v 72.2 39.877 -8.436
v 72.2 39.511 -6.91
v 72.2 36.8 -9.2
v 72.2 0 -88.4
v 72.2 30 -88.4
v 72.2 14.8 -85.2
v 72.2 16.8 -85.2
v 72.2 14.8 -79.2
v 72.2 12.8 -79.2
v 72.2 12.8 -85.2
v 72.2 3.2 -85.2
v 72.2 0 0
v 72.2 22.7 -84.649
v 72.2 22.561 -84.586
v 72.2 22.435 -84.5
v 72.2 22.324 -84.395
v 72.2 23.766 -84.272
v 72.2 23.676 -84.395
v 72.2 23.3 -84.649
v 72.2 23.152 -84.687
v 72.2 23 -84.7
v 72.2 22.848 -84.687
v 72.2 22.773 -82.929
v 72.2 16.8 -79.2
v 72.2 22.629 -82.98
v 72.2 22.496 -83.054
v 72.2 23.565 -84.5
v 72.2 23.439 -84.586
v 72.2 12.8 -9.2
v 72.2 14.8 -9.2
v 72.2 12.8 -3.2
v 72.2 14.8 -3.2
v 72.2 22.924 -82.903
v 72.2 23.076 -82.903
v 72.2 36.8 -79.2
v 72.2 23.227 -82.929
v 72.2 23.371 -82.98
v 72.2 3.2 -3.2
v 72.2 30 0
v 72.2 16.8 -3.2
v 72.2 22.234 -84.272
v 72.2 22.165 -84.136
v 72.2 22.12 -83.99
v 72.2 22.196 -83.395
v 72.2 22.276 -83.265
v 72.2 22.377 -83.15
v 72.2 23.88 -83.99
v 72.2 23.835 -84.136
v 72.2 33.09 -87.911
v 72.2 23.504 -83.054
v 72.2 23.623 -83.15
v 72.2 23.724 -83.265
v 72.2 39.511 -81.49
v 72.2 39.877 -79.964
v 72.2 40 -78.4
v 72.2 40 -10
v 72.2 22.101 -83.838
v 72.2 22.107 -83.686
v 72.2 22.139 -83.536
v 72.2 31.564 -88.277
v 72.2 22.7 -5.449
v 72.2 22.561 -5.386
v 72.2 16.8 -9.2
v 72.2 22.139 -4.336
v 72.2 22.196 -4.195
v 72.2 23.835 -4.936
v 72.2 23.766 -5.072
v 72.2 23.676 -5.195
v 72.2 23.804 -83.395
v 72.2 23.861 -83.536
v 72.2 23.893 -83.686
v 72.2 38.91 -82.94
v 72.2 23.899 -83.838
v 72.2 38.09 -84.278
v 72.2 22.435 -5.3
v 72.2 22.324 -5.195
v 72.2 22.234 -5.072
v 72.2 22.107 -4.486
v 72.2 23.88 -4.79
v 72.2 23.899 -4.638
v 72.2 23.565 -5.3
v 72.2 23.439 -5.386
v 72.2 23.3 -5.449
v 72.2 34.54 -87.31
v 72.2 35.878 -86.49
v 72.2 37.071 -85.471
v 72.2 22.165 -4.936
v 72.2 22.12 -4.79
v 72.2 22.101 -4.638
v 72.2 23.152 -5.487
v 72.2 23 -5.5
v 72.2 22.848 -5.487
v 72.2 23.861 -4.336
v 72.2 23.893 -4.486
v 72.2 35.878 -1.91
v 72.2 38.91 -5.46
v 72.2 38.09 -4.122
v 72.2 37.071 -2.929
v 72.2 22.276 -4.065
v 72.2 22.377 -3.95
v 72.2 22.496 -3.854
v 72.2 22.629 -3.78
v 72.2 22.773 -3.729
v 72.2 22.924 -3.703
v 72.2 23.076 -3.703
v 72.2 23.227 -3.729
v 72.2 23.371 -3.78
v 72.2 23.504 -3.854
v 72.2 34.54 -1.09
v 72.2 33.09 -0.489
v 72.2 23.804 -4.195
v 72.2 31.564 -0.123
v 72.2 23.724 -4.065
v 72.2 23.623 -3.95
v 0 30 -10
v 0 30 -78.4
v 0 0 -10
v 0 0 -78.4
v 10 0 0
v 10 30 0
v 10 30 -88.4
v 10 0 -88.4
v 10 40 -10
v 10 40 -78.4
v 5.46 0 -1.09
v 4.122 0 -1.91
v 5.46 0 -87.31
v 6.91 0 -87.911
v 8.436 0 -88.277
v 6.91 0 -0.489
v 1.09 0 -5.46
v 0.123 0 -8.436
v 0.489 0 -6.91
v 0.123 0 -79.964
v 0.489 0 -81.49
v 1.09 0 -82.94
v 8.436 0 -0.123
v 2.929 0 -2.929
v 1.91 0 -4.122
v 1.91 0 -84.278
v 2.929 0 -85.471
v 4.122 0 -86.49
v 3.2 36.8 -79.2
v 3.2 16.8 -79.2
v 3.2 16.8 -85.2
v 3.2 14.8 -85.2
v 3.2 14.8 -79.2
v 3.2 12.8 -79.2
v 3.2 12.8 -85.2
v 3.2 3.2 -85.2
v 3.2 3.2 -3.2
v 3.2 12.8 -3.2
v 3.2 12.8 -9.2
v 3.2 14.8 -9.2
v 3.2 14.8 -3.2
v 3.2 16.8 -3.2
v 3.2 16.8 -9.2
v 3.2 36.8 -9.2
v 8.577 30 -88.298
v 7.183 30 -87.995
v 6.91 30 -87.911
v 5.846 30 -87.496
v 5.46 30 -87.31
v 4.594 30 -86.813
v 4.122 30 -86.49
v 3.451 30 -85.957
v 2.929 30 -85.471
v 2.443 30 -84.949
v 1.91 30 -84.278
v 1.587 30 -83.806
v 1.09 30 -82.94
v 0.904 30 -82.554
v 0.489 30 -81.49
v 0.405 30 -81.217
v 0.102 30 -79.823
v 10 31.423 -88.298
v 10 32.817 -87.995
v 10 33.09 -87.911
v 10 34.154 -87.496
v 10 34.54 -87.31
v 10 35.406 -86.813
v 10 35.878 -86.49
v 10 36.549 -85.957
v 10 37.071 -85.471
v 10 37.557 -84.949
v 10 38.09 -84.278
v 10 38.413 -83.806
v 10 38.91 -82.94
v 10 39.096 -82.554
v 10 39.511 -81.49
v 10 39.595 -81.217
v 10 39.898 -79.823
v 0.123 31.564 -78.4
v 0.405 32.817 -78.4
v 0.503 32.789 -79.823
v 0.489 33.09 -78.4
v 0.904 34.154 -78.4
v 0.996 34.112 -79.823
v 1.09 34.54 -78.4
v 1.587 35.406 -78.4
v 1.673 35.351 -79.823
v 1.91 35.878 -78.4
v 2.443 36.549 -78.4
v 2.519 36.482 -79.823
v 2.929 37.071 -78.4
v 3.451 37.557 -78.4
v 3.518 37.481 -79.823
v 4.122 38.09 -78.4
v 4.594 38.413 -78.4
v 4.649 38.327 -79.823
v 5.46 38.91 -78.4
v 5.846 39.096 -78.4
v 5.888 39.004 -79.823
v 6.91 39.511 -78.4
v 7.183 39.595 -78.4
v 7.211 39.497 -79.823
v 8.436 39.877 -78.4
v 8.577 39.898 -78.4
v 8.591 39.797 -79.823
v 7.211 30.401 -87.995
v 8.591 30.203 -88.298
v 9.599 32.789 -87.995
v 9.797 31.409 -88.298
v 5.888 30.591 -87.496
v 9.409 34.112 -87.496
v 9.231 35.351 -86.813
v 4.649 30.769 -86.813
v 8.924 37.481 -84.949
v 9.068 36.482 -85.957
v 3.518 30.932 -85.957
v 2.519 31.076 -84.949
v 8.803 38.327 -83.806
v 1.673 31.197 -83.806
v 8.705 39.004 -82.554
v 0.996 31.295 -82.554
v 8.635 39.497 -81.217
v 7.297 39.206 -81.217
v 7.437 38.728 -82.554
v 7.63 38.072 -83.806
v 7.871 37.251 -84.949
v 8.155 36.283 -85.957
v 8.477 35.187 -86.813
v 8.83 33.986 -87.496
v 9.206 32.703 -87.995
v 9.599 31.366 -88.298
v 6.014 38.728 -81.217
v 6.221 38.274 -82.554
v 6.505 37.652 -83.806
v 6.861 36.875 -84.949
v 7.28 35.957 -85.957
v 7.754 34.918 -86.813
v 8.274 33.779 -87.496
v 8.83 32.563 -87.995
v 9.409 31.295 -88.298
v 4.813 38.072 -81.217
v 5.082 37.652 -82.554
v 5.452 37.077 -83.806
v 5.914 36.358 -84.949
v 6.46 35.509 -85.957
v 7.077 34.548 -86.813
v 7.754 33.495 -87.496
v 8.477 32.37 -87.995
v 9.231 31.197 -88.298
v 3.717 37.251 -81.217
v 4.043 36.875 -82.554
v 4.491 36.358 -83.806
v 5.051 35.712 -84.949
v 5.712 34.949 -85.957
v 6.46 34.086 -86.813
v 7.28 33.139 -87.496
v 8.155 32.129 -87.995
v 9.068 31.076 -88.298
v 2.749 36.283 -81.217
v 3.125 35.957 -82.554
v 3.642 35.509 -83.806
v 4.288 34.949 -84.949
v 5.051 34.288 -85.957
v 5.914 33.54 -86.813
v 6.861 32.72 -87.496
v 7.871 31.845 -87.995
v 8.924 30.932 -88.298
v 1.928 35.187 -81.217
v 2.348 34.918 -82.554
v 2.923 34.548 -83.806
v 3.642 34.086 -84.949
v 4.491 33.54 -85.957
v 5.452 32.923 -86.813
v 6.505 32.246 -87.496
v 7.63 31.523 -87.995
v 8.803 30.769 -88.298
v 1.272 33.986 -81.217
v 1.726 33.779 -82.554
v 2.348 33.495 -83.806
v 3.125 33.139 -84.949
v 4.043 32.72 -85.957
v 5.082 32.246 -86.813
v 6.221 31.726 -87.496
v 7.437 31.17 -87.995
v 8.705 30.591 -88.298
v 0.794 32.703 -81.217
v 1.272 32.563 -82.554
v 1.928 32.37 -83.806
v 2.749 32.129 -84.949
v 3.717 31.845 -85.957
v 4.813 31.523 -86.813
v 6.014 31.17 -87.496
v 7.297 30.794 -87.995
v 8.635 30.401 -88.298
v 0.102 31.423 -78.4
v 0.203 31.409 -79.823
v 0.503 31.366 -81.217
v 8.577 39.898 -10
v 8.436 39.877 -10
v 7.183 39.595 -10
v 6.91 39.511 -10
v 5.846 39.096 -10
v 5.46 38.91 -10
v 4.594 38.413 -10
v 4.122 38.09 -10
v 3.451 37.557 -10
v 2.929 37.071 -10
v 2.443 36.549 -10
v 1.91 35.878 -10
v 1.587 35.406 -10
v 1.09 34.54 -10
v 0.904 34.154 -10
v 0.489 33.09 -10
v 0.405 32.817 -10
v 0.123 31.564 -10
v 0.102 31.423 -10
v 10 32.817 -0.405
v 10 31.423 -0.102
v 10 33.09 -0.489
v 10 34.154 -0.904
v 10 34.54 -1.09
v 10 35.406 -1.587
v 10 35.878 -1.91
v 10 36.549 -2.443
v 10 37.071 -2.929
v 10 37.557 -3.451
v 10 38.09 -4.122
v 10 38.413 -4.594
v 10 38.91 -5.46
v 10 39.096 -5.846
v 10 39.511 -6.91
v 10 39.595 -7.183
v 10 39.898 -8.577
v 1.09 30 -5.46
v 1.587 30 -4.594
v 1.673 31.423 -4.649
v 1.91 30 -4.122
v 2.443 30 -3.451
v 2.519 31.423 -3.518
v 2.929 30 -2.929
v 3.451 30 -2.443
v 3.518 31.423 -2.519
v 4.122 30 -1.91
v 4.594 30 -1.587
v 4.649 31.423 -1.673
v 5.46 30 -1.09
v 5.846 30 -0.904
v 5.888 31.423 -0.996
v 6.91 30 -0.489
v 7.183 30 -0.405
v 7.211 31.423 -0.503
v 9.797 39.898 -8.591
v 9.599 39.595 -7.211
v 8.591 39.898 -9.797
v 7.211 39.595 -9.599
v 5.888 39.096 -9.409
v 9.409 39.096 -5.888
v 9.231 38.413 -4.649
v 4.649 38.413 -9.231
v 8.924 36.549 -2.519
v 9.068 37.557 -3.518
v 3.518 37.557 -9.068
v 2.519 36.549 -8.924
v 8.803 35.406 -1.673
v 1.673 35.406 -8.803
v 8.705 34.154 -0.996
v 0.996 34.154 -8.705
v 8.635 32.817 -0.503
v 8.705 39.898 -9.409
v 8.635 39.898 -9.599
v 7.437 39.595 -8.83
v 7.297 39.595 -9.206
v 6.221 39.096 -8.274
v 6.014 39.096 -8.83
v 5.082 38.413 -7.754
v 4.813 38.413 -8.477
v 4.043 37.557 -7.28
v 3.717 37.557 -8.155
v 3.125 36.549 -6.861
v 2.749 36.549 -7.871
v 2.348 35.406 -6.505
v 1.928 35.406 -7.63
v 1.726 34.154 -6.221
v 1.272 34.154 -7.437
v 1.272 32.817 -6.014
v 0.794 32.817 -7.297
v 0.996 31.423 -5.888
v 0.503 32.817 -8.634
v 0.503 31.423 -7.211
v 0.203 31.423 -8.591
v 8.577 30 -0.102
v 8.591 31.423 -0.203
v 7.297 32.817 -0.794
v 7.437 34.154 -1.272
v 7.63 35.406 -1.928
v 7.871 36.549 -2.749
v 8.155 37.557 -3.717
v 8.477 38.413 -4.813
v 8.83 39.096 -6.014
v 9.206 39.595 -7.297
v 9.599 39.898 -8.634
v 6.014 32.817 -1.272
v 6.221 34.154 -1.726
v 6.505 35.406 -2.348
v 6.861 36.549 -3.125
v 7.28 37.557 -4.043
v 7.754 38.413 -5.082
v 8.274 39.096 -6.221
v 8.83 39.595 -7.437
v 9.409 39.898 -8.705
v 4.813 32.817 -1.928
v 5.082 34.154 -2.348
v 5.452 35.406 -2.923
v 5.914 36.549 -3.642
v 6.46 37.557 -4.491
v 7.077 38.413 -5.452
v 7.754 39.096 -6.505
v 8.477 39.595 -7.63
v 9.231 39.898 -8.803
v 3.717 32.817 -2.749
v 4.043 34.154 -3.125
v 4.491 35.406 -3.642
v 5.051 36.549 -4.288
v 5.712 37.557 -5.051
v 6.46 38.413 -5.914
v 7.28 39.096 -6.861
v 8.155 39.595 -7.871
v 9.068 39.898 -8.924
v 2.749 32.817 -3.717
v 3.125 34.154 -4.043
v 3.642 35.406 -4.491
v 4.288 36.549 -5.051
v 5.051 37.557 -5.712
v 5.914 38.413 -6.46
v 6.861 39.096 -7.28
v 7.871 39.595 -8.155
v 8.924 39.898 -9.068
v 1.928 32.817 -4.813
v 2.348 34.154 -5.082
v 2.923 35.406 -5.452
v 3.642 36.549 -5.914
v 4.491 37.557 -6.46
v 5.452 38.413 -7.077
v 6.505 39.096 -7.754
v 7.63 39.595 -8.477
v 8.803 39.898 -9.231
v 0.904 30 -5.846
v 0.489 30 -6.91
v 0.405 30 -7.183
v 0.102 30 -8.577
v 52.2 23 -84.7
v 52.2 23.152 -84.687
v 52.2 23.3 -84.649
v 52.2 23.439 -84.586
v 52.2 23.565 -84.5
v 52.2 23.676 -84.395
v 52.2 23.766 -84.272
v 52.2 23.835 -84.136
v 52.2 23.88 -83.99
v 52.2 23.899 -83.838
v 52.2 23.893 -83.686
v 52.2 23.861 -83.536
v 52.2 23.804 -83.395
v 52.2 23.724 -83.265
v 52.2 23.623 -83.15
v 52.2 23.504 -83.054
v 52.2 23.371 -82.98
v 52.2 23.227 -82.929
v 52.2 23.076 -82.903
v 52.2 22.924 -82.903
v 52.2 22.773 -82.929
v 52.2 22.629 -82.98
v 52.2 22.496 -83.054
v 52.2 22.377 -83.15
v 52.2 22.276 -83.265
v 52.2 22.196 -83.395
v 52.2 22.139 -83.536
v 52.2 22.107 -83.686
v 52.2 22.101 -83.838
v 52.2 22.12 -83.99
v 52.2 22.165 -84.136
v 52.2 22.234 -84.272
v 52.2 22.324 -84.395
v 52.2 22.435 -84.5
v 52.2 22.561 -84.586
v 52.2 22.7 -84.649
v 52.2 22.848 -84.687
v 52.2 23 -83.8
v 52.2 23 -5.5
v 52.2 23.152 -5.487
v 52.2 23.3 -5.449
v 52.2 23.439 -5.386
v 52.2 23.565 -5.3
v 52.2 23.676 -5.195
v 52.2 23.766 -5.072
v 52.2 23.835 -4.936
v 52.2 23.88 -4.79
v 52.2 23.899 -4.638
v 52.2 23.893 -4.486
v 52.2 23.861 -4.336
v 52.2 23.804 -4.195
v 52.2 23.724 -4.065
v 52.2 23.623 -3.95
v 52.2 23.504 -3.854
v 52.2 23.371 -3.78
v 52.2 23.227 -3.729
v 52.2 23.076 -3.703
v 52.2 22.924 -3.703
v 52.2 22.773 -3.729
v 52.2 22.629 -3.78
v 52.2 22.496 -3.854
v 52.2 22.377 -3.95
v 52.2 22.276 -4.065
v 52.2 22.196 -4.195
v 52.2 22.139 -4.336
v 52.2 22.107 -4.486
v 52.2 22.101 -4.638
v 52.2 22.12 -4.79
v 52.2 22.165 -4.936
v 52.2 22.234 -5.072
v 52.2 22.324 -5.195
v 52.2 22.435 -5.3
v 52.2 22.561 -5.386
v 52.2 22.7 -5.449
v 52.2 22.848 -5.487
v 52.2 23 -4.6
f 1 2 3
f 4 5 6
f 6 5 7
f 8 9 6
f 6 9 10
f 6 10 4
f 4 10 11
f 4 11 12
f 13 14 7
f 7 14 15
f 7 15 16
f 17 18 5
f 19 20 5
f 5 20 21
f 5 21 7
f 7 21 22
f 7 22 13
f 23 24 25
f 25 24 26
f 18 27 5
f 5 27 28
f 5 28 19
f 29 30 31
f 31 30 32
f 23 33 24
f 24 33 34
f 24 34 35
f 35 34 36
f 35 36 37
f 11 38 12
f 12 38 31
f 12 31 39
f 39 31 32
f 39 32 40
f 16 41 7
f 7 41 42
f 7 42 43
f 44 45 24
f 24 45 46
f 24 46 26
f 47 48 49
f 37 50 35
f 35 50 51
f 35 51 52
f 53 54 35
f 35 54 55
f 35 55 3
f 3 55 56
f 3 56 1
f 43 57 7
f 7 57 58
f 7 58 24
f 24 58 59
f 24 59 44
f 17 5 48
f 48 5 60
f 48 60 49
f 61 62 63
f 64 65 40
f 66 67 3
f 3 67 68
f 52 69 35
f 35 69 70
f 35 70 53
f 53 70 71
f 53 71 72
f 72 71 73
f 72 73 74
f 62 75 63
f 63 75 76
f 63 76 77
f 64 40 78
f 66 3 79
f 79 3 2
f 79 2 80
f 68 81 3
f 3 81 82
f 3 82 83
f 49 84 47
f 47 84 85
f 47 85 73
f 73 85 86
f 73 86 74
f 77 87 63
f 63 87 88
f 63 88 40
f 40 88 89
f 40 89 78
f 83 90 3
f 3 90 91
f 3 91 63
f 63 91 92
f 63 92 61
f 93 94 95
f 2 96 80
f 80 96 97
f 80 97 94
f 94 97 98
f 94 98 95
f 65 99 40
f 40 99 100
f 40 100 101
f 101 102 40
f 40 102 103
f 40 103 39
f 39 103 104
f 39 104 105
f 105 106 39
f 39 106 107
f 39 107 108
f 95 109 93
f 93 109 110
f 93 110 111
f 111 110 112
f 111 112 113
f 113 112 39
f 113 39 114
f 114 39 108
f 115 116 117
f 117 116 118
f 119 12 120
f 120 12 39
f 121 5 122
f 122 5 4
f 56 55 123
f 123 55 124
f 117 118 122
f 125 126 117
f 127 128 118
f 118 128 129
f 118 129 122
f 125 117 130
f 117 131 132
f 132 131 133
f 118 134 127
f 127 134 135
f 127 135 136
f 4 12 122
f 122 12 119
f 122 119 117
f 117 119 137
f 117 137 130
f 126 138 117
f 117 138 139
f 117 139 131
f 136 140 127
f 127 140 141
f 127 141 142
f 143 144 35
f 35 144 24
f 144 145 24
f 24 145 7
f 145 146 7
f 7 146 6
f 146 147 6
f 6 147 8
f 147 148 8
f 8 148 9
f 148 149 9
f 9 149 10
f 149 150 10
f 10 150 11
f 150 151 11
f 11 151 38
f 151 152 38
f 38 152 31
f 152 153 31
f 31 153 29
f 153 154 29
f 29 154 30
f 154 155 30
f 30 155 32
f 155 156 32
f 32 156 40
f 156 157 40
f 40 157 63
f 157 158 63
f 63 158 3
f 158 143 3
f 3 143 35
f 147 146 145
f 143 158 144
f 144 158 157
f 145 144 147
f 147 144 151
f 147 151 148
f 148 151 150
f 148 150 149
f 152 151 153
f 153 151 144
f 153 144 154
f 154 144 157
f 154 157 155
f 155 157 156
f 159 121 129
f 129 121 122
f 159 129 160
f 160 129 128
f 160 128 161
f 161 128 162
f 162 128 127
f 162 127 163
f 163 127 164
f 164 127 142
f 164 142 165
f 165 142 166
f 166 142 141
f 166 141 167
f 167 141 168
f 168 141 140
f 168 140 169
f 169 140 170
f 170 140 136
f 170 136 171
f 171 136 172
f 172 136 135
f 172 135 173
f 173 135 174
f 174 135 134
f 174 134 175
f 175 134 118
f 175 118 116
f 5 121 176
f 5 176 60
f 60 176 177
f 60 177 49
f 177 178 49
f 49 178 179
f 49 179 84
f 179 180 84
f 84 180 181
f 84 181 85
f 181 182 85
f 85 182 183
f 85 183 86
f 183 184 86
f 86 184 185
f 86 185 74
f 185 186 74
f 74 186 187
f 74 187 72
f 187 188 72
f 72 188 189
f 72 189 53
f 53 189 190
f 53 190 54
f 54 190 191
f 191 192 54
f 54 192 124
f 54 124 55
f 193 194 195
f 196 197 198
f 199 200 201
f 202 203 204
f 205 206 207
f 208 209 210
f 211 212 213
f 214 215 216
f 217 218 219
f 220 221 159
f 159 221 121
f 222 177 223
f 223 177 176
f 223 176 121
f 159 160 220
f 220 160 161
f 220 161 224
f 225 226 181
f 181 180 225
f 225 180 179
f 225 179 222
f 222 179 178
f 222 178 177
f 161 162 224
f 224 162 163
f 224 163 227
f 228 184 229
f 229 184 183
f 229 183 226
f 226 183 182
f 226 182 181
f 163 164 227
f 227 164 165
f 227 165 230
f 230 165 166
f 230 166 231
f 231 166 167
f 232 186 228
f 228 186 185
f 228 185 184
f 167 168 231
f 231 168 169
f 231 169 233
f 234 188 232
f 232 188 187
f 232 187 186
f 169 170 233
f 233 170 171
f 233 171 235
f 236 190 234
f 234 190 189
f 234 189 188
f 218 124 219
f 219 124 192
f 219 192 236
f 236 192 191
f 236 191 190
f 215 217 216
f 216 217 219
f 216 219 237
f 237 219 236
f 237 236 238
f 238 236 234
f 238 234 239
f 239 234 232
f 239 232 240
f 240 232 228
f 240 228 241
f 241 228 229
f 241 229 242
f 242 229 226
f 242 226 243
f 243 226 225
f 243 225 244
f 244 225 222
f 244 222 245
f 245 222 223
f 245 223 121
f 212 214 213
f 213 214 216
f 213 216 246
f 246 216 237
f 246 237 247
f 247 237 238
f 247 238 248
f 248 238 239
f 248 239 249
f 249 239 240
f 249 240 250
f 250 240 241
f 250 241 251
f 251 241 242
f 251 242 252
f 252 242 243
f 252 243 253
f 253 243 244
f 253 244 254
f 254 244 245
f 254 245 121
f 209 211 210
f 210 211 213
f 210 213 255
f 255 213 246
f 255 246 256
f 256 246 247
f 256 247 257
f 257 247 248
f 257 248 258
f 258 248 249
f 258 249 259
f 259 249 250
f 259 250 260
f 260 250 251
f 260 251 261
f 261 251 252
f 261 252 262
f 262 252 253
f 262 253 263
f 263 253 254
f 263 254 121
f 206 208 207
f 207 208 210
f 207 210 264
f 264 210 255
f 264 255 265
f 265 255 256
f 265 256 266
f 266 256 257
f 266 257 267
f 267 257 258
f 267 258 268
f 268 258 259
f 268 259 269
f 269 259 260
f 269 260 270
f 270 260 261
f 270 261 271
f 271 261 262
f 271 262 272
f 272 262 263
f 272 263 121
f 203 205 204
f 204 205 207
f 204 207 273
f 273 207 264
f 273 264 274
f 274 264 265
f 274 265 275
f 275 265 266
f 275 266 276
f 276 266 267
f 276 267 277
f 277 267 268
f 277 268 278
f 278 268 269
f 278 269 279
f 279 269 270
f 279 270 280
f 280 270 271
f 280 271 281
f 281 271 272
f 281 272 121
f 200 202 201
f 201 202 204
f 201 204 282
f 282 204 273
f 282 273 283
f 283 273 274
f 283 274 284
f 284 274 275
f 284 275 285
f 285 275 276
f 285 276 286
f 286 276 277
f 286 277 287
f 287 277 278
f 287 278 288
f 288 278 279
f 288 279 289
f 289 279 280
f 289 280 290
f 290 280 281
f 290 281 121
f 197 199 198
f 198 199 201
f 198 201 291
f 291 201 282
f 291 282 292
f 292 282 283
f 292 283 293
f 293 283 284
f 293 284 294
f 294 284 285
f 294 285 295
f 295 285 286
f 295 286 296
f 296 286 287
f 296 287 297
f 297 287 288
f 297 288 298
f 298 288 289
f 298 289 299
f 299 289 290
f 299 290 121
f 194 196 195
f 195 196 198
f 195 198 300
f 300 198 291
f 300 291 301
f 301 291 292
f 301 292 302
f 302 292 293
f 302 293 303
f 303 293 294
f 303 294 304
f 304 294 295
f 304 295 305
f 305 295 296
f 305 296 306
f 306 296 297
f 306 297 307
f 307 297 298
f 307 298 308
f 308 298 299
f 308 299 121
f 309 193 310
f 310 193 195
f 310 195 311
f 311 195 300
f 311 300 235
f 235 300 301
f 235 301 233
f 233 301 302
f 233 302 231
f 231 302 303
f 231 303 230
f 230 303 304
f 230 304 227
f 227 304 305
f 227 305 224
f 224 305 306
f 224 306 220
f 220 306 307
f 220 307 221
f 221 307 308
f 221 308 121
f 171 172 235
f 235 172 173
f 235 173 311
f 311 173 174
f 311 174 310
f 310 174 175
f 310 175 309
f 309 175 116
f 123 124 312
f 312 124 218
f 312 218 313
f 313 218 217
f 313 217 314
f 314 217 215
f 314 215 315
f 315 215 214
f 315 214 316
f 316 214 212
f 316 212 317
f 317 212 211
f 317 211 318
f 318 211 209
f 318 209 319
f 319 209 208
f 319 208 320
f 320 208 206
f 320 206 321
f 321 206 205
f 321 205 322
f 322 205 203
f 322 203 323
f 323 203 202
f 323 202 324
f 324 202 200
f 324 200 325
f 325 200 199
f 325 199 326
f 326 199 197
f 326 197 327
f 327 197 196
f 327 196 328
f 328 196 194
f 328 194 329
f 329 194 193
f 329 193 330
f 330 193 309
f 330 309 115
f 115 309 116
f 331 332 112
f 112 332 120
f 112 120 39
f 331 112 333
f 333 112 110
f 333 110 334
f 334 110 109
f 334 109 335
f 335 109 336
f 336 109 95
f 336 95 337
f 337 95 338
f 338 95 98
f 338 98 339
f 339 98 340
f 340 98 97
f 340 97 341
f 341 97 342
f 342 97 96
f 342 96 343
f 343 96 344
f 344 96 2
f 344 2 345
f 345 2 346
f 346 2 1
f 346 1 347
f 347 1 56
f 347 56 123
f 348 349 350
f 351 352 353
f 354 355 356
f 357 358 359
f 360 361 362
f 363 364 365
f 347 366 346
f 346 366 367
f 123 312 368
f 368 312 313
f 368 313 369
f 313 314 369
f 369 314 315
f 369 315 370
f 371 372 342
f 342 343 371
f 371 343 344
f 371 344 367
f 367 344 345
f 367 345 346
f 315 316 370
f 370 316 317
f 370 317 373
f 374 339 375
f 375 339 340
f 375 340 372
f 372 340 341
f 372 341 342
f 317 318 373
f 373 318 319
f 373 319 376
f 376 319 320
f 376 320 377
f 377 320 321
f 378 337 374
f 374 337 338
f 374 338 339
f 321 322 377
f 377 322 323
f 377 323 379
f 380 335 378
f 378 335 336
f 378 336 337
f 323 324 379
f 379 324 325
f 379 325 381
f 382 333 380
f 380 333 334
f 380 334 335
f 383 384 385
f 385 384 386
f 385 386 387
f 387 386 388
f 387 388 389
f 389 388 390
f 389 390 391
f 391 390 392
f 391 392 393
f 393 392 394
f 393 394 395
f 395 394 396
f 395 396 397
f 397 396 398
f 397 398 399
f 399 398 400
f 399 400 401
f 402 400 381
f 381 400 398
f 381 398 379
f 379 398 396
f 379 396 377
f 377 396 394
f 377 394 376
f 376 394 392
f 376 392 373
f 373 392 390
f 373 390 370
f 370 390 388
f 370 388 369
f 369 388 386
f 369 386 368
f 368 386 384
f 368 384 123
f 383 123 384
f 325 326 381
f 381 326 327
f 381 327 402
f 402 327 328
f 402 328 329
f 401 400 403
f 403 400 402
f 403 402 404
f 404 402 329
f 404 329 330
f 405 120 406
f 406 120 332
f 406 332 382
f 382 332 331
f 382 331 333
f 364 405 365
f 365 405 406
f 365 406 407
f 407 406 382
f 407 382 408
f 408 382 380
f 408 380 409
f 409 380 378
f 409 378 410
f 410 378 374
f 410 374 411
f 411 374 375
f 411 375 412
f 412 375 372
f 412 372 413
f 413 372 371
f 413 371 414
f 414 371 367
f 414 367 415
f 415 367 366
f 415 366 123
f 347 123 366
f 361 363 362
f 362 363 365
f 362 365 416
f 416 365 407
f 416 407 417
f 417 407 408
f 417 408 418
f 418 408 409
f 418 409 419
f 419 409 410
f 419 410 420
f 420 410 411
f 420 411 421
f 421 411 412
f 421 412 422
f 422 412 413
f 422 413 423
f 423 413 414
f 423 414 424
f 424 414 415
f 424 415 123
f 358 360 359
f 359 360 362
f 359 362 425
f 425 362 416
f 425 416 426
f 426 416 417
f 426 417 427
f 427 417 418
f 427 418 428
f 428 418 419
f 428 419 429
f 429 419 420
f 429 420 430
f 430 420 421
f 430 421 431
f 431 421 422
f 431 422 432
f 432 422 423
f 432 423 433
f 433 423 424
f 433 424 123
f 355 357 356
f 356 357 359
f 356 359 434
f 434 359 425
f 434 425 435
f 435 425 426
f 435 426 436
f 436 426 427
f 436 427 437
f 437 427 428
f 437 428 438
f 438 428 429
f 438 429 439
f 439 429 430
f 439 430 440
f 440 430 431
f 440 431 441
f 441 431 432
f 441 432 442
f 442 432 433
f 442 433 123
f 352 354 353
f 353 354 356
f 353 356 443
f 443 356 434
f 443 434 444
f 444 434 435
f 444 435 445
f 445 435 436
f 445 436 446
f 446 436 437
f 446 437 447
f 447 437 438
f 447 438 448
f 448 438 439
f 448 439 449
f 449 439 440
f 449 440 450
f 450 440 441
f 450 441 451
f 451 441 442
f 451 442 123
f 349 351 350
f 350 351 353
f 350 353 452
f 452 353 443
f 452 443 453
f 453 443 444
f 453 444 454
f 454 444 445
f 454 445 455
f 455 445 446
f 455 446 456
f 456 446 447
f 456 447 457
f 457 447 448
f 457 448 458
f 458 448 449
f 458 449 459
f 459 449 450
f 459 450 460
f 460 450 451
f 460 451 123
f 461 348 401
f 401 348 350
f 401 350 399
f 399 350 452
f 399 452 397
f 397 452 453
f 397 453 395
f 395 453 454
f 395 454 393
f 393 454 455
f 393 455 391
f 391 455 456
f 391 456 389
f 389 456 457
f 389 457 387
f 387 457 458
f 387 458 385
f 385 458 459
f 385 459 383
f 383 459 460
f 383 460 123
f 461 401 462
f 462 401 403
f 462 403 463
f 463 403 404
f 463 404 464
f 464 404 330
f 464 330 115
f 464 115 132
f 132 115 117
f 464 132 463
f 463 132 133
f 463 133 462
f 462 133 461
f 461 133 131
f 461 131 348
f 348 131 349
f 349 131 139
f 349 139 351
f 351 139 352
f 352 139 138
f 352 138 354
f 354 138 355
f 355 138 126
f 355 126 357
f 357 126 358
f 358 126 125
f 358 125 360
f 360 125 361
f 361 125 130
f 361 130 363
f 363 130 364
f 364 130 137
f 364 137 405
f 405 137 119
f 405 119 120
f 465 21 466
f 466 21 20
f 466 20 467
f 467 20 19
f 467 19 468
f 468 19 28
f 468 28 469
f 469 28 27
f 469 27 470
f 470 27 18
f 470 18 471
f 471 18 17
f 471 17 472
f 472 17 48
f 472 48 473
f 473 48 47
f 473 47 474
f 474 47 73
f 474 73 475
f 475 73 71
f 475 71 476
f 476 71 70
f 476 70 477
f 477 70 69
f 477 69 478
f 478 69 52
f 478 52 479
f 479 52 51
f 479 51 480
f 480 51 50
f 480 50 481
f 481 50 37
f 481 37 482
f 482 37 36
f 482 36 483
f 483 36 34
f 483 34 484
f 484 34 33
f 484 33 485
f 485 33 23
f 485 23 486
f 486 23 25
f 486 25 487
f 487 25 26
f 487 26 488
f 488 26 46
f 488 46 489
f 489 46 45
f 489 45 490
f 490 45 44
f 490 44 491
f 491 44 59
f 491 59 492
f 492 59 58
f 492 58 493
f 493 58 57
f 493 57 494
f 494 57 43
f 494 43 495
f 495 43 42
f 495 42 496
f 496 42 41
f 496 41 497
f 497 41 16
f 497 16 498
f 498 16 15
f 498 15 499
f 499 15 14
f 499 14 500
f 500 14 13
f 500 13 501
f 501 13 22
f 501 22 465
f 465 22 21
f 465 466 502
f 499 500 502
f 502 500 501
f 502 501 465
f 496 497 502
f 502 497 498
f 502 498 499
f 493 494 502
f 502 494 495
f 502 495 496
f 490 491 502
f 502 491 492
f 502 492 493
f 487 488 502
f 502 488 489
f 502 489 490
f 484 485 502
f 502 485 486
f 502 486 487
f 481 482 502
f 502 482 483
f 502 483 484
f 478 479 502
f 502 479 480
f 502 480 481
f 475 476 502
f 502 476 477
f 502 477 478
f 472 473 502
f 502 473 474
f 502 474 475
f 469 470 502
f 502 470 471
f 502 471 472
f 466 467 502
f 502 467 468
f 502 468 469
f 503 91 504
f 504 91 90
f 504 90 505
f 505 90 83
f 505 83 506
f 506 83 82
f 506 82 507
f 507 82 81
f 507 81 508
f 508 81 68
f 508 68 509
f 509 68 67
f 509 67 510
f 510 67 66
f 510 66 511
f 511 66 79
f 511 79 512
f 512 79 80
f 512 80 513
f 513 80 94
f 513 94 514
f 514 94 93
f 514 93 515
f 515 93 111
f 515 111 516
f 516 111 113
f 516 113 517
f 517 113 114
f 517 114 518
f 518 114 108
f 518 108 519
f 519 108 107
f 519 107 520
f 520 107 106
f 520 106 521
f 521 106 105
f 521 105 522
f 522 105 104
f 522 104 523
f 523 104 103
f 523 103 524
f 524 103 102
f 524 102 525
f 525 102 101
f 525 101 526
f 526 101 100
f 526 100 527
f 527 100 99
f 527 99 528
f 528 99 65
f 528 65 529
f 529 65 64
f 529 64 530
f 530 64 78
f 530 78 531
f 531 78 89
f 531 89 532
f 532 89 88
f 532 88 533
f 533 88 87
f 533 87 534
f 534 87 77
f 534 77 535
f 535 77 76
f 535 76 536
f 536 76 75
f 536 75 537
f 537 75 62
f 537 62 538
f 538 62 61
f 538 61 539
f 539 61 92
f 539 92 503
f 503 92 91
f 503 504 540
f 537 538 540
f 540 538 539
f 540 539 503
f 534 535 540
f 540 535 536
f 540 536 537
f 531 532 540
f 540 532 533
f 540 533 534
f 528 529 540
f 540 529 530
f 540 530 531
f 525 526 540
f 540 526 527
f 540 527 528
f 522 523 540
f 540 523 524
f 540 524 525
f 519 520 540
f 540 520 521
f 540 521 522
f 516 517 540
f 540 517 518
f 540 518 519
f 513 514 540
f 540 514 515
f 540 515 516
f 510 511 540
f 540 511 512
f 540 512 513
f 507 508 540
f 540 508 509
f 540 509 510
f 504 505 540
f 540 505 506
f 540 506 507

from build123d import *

# Parameters (mm, degrees)
SKETCH1_W           = 72.2
SKETCH1_H           = 88.4
BOSS_EXTRUDE1_DEPTH = 40
CUT_EXTRUDE4_DEPTH  = 69
FILLET1_R           = 10
SKETCH3_R           = 0.9
CUT_EXTRUDE5_DEPTH  = 20


with BuildPart() as part:
    # Sketch1 → Boss-Extrude1 (new body)
    with BuildSketch(Plane(origin=(0, 0, 0), x_dir=(1, 0, 0), z_dir=(0, 1, 0))):
        with Locations((36.1, 44.2)):
            Rectangle(SKETCH1_W, SKETCH1_H)
    extrude(amount=BOSS_EXTRUDE1_DEPTH)

    # Sketch2 → Cut-Extrude4 (cut)
    with BuildSketch(Plane(origin=(72.2, 0, 0), x_dir=(0, 0, -1), z_dir=(1, 0, 0))):
        Polygon((3.2, 12.8), (3.2, 3.2), (85.2, 3.2), (85.2, 12.8), (79.2, 12.8), (79.2, 14.8), (85.2, 14.8), (85.2, 16.8), (79.2, 16.8), (79.2, 36.8), (44.2, 36.8), (9.2, 36.8), (9.2, 16.8), (3.2, 16.8), (3.2, 14.8), (9.2, 14.8), (9.2, 12.8), align=None)
    extrude(amount=-CUT_EXTRUDE4_DEPTH, mode=Mode.SUBTRACT)

    # Fillet1
    fillet1_edges = [part.edges().sort_by_distance(p)[0] for p in [
        (36.1, 40, -88.4),
        (0, 40, -44.2),
        (0, 20, -88.4),
        (0, 20, 0),
        (36.1, 40, 0),
    ]]
    fillet(fillet1_edges, radius=FILLET1_R)

    # Sketch3 → Cut-Extrude5 (cut)
    with BuildSketch(Plane(origin=(72.2, 0, 0), x_dir=(0, 0, -1), z_dir=(1, 0, 0))):
        with Locations((4.6, 23)):
            Circle(SKETCH3_R)
        with Locations((83.8, 23)):
            Circle(SKETCH3_R)
    extrude(amount=-CUT_EXTRUDE5_DEPTH, mode=Mode.SUBTRACT)


solid = part.part
